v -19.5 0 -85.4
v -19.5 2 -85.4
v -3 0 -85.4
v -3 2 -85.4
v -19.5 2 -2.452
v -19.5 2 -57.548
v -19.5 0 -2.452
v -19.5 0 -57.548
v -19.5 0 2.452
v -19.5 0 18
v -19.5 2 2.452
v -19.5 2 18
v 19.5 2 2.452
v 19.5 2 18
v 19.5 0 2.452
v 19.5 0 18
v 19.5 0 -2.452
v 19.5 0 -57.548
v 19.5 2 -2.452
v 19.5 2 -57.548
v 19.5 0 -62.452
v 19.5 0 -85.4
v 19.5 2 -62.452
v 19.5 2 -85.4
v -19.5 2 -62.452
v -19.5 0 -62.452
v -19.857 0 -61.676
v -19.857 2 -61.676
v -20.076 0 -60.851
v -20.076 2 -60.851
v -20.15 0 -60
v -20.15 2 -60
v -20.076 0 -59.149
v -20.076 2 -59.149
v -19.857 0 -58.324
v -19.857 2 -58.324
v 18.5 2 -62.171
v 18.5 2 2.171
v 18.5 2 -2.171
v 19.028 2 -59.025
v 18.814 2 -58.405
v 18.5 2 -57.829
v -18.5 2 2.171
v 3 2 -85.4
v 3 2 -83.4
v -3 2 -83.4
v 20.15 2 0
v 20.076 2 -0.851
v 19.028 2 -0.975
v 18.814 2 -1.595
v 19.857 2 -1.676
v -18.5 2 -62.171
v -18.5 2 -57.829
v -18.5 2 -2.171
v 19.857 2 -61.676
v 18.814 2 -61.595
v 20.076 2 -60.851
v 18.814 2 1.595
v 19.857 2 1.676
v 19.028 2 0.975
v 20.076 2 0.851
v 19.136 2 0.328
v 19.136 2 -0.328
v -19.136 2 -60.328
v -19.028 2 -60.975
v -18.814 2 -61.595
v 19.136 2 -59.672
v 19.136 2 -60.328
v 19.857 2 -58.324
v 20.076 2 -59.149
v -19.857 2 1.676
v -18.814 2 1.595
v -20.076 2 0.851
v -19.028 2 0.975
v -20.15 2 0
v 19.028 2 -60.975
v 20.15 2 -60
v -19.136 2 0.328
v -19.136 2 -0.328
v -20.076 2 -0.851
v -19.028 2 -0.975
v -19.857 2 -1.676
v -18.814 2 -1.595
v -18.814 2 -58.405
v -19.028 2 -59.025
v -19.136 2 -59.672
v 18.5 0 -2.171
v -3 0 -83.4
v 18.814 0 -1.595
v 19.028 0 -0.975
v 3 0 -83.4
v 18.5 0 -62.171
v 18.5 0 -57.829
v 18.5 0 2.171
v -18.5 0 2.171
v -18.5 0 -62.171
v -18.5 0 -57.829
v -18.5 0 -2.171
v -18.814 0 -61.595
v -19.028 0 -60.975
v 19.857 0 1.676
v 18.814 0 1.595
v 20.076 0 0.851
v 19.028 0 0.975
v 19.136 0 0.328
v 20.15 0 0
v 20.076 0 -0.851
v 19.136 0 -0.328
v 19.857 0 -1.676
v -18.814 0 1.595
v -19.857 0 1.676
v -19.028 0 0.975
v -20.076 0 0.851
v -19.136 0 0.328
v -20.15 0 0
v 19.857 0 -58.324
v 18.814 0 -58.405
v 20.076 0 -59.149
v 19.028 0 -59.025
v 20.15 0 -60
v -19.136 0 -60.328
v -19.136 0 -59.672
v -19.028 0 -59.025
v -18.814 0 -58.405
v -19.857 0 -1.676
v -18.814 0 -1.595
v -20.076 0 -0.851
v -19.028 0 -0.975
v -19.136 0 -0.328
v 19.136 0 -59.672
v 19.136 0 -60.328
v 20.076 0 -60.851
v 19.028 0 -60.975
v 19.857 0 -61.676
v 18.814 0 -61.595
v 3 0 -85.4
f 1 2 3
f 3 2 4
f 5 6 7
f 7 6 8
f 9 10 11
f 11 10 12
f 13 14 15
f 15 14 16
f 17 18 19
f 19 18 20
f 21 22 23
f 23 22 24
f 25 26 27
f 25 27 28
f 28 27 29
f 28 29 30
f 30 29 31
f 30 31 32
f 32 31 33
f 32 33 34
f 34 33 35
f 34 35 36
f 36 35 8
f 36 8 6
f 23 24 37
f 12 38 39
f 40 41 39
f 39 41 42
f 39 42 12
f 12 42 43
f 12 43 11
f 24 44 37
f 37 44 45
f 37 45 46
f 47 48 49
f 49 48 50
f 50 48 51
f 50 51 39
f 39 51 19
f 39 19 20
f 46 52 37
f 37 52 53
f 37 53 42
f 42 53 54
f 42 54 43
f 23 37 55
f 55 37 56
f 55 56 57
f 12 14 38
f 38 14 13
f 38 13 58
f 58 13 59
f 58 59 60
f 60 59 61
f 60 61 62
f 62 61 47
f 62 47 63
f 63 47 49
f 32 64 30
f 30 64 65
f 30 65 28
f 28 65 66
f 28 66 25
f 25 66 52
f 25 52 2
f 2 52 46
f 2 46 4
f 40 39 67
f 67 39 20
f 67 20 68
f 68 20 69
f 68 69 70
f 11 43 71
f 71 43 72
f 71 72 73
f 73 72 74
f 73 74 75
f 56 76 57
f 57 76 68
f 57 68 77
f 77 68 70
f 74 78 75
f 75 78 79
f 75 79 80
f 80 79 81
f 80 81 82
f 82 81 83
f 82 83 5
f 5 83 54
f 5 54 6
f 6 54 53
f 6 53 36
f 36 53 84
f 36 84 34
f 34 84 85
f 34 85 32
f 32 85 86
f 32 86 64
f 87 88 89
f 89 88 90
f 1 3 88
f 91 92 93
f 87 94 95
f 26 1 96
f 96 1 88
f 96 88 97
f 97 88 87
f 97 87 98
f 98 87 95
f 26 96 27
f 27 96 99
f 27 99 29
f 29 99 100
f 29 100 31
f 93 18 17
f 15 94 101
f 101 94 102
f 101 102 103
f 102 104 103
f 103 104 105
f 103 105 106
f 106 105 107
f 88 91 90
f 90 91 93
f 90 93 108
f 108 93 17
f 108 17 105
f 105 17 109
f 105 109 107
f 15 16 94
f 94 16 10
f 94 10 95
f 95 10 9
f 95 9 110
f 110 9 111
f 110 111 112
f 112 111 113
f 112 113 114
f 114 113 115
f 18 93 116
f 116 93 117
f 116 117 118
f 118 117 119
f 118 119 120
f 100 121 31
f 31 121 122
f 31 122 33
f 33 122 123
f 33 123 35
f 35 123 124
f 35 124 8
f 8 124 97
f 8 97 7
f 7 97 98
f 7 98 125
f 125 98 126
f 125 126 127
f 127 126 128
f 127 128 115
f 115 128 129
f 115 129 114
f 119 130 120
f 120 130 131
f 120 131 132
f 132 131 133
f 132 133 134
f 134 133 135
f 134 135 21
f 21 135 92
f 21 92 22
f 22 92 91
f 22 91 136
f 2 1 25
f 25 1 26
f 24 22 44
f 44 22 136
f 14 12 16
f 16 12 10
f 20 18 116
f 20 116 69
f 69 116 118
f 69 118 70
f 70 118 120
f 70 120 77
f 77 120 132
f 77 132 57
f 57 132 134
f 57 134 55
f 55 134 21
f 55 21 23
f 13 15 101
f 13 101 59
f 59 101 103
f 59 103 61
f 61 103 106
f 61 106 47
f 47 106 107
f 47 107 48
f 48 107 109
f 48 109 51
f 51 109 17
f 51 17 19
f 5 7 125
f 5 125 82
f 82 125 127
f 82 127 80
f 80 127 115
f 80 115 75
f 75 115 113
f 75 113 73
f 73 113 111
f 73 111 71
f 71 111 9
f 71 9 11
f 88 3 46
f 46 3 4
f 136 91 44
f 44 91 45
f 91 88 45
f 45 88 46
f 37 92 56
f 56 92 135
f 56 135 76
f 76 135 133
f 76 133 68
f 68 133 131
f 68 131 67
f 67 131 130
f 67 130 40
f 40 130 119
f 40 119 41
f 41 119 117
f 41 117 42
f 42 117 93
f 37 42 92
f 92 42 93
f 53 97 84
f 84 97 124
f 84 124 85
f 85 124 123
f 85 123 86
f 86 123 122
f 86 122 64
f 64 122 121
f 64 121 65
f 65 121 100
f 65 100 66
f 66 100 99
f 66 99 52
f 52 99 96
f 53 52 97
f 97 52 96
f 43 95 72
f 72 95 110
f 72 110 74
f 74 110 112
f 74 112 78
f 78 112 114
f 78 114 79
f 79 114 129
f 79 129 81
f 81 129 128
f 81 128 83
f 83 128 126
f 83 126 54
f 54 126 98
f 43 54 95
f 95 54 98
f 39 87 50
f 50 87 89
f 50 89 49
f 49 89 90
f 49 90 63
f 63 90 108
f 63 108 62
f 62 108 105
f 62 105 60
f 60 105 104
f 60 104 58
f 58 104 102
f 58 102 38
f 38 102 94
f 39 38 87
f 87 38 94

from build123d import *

# Parameters (mm, degrees)
SKETCH1_R             = 4.95
BOSS_EXTRUDE1_DEPTH   = 2
BOSS_EXTRUDE1_2_DEPTH = 2
BOSS_EXTRUDE1_3_DEPTH = 2
BOSS_EXTRUDE1_4_DEPTH = 2
SKETCH2_W             = 39
SKETCH2_H             = 103.4
BOSS_EXTRUDE2_DEPTH   = 2
SKETCH3_W             = 6
SKETCH3_H             = 2
CUT_EXTRUDE1_DEPTH    = 88.767775977
CUT_EXTRUDE2_DEPTH    = 88.767775977


with BuildPart() as part:
    # Sketch1 → Boss-Extrude1 (new body)
    with BuildSketch(Plane(origin=(0, 0, 0), x_dir=(1, 0, 0), z_dir=(0, 1, 0))):
        with Locations(Location((-15.2, 60, 0), (0, 0, 270))):
            Circle(SKETCH1_R)
    extrude(amount=BOSS_EXTRUDE1_DEPTH)



with BuildPart() as body_2:
    # Sketch1 → Boss-Extrude1 2 (new body)
    with BuildSketch(Plane(origin=(0, 0, 0), x_dir=(1, 0, 0), z_dir=(0, 1, 0))):
        with Locations(Location((15.2, 60, 0), (0, 0, 270))):
            Circle(SKETCH1_R)
    extrude(amount=BOSS_EXTRUDE1_2_DEPTH)


with BuildPart() as body_3:
    # Sketch1 → Boss-Extrude1 3 (new body)
    with BuildSketch(Plane(origin=(0, 0, 0), x_dir=(1, 0, 0), z_dir=(0, 1, 0))):
        with Locations(Location((15.2, 0, 0), (0, 0, 270))):
            Circle(SKETCH1_R)
    extrude(amount=BOSS_EXTRUDE1_3_DEPTH)


with BuildPart() as body_4:
    # Sketch1 → Boss-Extrude1 4 (new body)
    with BuildSketch(Plane(origin=(0, 0, 0), x_dir=(1, 0, 0), z_dir=(0, 1, 0))):
        with Locations(Location((-15.2, 0, 0), (0, 0, 270))):
            Circle(SKETCH1_R)
    extrude(amount=BOSS_EXTRUDE1_4_DEPTH)


with BuildPart() as part_1:
    add(part.part)

    add(body_2.part)  # Boss-Extrude2 merges body 2

    add(body_3.part)  # Boss-Extrude2 merges body 3

    add(body_4.part)  # Boss-Extrude2 merges body 4
    # Sketch2 → Boss-Extrude2 (add)
    with BuildSketch(Plane(origin=(0, 2, 0), x_dir=(1, 0, 0), z_dir=(0, 1, 0))):
        with Locations((0, 33.7)):
            Rectangle(SKETCH2_W, SKETCH2_H)
    extrude(amount=-BOSS_EXTRUDE2_DEPTH)

    # Sketch3 → Cut-Extrude1 (cut, through all)
    with BuildSketch(Plane(origin=(0, 2, 0), x_dir=(1, 0, 0), z_dir=(0, 1, 0))):
        with Locations((0, 84.4)):
            Rectangle(SKETCH3_W, SKETCH3_H)
    extrude(amount=-CUT_EXTRUDE1_DEPTH, mode=Mode.SUBTRACT)

    # Sketch5 → Cut-Extrude2 (cut, through all)
    with BuildSketch(Plane.XZ):
        with BuildLine():
            Line((18.5, -62.170829335), (18.5, -57.829170665))
            ThreePointArc((18.5, -57.829170665), (19.15, -60), (18.5, -62.170829335))
        make_face()
        with BuildLine():
            Line((18.5, -2.170829335), (18.5, 2.170829335))
            ThreePointArc((18.5, 2.170829335), (19.15, 0), (18.5, -2.170829335))
        make_face()
        with BuildLine():
            Line((-18.5, -2.170829335), (-18.5, 2.170829335))
            ThreePointArc((-18.5, 2.170829335), (-19.15, 0), (-18.5, -2.170829335))
        make_face()
        with BuildLine():
            Line((-18.5, -62.170829335), (-18.5, -57.829170665))
            ThreePointArc((-18.5, -57.829170665), (-19.15, -60), (-18.5, -62.170829335))
        make_face()
    extrude(amount=-CUT_EXTRUDE2_DEPTH, mode=Mode.SUBTRACT)


solid = part_1.part
